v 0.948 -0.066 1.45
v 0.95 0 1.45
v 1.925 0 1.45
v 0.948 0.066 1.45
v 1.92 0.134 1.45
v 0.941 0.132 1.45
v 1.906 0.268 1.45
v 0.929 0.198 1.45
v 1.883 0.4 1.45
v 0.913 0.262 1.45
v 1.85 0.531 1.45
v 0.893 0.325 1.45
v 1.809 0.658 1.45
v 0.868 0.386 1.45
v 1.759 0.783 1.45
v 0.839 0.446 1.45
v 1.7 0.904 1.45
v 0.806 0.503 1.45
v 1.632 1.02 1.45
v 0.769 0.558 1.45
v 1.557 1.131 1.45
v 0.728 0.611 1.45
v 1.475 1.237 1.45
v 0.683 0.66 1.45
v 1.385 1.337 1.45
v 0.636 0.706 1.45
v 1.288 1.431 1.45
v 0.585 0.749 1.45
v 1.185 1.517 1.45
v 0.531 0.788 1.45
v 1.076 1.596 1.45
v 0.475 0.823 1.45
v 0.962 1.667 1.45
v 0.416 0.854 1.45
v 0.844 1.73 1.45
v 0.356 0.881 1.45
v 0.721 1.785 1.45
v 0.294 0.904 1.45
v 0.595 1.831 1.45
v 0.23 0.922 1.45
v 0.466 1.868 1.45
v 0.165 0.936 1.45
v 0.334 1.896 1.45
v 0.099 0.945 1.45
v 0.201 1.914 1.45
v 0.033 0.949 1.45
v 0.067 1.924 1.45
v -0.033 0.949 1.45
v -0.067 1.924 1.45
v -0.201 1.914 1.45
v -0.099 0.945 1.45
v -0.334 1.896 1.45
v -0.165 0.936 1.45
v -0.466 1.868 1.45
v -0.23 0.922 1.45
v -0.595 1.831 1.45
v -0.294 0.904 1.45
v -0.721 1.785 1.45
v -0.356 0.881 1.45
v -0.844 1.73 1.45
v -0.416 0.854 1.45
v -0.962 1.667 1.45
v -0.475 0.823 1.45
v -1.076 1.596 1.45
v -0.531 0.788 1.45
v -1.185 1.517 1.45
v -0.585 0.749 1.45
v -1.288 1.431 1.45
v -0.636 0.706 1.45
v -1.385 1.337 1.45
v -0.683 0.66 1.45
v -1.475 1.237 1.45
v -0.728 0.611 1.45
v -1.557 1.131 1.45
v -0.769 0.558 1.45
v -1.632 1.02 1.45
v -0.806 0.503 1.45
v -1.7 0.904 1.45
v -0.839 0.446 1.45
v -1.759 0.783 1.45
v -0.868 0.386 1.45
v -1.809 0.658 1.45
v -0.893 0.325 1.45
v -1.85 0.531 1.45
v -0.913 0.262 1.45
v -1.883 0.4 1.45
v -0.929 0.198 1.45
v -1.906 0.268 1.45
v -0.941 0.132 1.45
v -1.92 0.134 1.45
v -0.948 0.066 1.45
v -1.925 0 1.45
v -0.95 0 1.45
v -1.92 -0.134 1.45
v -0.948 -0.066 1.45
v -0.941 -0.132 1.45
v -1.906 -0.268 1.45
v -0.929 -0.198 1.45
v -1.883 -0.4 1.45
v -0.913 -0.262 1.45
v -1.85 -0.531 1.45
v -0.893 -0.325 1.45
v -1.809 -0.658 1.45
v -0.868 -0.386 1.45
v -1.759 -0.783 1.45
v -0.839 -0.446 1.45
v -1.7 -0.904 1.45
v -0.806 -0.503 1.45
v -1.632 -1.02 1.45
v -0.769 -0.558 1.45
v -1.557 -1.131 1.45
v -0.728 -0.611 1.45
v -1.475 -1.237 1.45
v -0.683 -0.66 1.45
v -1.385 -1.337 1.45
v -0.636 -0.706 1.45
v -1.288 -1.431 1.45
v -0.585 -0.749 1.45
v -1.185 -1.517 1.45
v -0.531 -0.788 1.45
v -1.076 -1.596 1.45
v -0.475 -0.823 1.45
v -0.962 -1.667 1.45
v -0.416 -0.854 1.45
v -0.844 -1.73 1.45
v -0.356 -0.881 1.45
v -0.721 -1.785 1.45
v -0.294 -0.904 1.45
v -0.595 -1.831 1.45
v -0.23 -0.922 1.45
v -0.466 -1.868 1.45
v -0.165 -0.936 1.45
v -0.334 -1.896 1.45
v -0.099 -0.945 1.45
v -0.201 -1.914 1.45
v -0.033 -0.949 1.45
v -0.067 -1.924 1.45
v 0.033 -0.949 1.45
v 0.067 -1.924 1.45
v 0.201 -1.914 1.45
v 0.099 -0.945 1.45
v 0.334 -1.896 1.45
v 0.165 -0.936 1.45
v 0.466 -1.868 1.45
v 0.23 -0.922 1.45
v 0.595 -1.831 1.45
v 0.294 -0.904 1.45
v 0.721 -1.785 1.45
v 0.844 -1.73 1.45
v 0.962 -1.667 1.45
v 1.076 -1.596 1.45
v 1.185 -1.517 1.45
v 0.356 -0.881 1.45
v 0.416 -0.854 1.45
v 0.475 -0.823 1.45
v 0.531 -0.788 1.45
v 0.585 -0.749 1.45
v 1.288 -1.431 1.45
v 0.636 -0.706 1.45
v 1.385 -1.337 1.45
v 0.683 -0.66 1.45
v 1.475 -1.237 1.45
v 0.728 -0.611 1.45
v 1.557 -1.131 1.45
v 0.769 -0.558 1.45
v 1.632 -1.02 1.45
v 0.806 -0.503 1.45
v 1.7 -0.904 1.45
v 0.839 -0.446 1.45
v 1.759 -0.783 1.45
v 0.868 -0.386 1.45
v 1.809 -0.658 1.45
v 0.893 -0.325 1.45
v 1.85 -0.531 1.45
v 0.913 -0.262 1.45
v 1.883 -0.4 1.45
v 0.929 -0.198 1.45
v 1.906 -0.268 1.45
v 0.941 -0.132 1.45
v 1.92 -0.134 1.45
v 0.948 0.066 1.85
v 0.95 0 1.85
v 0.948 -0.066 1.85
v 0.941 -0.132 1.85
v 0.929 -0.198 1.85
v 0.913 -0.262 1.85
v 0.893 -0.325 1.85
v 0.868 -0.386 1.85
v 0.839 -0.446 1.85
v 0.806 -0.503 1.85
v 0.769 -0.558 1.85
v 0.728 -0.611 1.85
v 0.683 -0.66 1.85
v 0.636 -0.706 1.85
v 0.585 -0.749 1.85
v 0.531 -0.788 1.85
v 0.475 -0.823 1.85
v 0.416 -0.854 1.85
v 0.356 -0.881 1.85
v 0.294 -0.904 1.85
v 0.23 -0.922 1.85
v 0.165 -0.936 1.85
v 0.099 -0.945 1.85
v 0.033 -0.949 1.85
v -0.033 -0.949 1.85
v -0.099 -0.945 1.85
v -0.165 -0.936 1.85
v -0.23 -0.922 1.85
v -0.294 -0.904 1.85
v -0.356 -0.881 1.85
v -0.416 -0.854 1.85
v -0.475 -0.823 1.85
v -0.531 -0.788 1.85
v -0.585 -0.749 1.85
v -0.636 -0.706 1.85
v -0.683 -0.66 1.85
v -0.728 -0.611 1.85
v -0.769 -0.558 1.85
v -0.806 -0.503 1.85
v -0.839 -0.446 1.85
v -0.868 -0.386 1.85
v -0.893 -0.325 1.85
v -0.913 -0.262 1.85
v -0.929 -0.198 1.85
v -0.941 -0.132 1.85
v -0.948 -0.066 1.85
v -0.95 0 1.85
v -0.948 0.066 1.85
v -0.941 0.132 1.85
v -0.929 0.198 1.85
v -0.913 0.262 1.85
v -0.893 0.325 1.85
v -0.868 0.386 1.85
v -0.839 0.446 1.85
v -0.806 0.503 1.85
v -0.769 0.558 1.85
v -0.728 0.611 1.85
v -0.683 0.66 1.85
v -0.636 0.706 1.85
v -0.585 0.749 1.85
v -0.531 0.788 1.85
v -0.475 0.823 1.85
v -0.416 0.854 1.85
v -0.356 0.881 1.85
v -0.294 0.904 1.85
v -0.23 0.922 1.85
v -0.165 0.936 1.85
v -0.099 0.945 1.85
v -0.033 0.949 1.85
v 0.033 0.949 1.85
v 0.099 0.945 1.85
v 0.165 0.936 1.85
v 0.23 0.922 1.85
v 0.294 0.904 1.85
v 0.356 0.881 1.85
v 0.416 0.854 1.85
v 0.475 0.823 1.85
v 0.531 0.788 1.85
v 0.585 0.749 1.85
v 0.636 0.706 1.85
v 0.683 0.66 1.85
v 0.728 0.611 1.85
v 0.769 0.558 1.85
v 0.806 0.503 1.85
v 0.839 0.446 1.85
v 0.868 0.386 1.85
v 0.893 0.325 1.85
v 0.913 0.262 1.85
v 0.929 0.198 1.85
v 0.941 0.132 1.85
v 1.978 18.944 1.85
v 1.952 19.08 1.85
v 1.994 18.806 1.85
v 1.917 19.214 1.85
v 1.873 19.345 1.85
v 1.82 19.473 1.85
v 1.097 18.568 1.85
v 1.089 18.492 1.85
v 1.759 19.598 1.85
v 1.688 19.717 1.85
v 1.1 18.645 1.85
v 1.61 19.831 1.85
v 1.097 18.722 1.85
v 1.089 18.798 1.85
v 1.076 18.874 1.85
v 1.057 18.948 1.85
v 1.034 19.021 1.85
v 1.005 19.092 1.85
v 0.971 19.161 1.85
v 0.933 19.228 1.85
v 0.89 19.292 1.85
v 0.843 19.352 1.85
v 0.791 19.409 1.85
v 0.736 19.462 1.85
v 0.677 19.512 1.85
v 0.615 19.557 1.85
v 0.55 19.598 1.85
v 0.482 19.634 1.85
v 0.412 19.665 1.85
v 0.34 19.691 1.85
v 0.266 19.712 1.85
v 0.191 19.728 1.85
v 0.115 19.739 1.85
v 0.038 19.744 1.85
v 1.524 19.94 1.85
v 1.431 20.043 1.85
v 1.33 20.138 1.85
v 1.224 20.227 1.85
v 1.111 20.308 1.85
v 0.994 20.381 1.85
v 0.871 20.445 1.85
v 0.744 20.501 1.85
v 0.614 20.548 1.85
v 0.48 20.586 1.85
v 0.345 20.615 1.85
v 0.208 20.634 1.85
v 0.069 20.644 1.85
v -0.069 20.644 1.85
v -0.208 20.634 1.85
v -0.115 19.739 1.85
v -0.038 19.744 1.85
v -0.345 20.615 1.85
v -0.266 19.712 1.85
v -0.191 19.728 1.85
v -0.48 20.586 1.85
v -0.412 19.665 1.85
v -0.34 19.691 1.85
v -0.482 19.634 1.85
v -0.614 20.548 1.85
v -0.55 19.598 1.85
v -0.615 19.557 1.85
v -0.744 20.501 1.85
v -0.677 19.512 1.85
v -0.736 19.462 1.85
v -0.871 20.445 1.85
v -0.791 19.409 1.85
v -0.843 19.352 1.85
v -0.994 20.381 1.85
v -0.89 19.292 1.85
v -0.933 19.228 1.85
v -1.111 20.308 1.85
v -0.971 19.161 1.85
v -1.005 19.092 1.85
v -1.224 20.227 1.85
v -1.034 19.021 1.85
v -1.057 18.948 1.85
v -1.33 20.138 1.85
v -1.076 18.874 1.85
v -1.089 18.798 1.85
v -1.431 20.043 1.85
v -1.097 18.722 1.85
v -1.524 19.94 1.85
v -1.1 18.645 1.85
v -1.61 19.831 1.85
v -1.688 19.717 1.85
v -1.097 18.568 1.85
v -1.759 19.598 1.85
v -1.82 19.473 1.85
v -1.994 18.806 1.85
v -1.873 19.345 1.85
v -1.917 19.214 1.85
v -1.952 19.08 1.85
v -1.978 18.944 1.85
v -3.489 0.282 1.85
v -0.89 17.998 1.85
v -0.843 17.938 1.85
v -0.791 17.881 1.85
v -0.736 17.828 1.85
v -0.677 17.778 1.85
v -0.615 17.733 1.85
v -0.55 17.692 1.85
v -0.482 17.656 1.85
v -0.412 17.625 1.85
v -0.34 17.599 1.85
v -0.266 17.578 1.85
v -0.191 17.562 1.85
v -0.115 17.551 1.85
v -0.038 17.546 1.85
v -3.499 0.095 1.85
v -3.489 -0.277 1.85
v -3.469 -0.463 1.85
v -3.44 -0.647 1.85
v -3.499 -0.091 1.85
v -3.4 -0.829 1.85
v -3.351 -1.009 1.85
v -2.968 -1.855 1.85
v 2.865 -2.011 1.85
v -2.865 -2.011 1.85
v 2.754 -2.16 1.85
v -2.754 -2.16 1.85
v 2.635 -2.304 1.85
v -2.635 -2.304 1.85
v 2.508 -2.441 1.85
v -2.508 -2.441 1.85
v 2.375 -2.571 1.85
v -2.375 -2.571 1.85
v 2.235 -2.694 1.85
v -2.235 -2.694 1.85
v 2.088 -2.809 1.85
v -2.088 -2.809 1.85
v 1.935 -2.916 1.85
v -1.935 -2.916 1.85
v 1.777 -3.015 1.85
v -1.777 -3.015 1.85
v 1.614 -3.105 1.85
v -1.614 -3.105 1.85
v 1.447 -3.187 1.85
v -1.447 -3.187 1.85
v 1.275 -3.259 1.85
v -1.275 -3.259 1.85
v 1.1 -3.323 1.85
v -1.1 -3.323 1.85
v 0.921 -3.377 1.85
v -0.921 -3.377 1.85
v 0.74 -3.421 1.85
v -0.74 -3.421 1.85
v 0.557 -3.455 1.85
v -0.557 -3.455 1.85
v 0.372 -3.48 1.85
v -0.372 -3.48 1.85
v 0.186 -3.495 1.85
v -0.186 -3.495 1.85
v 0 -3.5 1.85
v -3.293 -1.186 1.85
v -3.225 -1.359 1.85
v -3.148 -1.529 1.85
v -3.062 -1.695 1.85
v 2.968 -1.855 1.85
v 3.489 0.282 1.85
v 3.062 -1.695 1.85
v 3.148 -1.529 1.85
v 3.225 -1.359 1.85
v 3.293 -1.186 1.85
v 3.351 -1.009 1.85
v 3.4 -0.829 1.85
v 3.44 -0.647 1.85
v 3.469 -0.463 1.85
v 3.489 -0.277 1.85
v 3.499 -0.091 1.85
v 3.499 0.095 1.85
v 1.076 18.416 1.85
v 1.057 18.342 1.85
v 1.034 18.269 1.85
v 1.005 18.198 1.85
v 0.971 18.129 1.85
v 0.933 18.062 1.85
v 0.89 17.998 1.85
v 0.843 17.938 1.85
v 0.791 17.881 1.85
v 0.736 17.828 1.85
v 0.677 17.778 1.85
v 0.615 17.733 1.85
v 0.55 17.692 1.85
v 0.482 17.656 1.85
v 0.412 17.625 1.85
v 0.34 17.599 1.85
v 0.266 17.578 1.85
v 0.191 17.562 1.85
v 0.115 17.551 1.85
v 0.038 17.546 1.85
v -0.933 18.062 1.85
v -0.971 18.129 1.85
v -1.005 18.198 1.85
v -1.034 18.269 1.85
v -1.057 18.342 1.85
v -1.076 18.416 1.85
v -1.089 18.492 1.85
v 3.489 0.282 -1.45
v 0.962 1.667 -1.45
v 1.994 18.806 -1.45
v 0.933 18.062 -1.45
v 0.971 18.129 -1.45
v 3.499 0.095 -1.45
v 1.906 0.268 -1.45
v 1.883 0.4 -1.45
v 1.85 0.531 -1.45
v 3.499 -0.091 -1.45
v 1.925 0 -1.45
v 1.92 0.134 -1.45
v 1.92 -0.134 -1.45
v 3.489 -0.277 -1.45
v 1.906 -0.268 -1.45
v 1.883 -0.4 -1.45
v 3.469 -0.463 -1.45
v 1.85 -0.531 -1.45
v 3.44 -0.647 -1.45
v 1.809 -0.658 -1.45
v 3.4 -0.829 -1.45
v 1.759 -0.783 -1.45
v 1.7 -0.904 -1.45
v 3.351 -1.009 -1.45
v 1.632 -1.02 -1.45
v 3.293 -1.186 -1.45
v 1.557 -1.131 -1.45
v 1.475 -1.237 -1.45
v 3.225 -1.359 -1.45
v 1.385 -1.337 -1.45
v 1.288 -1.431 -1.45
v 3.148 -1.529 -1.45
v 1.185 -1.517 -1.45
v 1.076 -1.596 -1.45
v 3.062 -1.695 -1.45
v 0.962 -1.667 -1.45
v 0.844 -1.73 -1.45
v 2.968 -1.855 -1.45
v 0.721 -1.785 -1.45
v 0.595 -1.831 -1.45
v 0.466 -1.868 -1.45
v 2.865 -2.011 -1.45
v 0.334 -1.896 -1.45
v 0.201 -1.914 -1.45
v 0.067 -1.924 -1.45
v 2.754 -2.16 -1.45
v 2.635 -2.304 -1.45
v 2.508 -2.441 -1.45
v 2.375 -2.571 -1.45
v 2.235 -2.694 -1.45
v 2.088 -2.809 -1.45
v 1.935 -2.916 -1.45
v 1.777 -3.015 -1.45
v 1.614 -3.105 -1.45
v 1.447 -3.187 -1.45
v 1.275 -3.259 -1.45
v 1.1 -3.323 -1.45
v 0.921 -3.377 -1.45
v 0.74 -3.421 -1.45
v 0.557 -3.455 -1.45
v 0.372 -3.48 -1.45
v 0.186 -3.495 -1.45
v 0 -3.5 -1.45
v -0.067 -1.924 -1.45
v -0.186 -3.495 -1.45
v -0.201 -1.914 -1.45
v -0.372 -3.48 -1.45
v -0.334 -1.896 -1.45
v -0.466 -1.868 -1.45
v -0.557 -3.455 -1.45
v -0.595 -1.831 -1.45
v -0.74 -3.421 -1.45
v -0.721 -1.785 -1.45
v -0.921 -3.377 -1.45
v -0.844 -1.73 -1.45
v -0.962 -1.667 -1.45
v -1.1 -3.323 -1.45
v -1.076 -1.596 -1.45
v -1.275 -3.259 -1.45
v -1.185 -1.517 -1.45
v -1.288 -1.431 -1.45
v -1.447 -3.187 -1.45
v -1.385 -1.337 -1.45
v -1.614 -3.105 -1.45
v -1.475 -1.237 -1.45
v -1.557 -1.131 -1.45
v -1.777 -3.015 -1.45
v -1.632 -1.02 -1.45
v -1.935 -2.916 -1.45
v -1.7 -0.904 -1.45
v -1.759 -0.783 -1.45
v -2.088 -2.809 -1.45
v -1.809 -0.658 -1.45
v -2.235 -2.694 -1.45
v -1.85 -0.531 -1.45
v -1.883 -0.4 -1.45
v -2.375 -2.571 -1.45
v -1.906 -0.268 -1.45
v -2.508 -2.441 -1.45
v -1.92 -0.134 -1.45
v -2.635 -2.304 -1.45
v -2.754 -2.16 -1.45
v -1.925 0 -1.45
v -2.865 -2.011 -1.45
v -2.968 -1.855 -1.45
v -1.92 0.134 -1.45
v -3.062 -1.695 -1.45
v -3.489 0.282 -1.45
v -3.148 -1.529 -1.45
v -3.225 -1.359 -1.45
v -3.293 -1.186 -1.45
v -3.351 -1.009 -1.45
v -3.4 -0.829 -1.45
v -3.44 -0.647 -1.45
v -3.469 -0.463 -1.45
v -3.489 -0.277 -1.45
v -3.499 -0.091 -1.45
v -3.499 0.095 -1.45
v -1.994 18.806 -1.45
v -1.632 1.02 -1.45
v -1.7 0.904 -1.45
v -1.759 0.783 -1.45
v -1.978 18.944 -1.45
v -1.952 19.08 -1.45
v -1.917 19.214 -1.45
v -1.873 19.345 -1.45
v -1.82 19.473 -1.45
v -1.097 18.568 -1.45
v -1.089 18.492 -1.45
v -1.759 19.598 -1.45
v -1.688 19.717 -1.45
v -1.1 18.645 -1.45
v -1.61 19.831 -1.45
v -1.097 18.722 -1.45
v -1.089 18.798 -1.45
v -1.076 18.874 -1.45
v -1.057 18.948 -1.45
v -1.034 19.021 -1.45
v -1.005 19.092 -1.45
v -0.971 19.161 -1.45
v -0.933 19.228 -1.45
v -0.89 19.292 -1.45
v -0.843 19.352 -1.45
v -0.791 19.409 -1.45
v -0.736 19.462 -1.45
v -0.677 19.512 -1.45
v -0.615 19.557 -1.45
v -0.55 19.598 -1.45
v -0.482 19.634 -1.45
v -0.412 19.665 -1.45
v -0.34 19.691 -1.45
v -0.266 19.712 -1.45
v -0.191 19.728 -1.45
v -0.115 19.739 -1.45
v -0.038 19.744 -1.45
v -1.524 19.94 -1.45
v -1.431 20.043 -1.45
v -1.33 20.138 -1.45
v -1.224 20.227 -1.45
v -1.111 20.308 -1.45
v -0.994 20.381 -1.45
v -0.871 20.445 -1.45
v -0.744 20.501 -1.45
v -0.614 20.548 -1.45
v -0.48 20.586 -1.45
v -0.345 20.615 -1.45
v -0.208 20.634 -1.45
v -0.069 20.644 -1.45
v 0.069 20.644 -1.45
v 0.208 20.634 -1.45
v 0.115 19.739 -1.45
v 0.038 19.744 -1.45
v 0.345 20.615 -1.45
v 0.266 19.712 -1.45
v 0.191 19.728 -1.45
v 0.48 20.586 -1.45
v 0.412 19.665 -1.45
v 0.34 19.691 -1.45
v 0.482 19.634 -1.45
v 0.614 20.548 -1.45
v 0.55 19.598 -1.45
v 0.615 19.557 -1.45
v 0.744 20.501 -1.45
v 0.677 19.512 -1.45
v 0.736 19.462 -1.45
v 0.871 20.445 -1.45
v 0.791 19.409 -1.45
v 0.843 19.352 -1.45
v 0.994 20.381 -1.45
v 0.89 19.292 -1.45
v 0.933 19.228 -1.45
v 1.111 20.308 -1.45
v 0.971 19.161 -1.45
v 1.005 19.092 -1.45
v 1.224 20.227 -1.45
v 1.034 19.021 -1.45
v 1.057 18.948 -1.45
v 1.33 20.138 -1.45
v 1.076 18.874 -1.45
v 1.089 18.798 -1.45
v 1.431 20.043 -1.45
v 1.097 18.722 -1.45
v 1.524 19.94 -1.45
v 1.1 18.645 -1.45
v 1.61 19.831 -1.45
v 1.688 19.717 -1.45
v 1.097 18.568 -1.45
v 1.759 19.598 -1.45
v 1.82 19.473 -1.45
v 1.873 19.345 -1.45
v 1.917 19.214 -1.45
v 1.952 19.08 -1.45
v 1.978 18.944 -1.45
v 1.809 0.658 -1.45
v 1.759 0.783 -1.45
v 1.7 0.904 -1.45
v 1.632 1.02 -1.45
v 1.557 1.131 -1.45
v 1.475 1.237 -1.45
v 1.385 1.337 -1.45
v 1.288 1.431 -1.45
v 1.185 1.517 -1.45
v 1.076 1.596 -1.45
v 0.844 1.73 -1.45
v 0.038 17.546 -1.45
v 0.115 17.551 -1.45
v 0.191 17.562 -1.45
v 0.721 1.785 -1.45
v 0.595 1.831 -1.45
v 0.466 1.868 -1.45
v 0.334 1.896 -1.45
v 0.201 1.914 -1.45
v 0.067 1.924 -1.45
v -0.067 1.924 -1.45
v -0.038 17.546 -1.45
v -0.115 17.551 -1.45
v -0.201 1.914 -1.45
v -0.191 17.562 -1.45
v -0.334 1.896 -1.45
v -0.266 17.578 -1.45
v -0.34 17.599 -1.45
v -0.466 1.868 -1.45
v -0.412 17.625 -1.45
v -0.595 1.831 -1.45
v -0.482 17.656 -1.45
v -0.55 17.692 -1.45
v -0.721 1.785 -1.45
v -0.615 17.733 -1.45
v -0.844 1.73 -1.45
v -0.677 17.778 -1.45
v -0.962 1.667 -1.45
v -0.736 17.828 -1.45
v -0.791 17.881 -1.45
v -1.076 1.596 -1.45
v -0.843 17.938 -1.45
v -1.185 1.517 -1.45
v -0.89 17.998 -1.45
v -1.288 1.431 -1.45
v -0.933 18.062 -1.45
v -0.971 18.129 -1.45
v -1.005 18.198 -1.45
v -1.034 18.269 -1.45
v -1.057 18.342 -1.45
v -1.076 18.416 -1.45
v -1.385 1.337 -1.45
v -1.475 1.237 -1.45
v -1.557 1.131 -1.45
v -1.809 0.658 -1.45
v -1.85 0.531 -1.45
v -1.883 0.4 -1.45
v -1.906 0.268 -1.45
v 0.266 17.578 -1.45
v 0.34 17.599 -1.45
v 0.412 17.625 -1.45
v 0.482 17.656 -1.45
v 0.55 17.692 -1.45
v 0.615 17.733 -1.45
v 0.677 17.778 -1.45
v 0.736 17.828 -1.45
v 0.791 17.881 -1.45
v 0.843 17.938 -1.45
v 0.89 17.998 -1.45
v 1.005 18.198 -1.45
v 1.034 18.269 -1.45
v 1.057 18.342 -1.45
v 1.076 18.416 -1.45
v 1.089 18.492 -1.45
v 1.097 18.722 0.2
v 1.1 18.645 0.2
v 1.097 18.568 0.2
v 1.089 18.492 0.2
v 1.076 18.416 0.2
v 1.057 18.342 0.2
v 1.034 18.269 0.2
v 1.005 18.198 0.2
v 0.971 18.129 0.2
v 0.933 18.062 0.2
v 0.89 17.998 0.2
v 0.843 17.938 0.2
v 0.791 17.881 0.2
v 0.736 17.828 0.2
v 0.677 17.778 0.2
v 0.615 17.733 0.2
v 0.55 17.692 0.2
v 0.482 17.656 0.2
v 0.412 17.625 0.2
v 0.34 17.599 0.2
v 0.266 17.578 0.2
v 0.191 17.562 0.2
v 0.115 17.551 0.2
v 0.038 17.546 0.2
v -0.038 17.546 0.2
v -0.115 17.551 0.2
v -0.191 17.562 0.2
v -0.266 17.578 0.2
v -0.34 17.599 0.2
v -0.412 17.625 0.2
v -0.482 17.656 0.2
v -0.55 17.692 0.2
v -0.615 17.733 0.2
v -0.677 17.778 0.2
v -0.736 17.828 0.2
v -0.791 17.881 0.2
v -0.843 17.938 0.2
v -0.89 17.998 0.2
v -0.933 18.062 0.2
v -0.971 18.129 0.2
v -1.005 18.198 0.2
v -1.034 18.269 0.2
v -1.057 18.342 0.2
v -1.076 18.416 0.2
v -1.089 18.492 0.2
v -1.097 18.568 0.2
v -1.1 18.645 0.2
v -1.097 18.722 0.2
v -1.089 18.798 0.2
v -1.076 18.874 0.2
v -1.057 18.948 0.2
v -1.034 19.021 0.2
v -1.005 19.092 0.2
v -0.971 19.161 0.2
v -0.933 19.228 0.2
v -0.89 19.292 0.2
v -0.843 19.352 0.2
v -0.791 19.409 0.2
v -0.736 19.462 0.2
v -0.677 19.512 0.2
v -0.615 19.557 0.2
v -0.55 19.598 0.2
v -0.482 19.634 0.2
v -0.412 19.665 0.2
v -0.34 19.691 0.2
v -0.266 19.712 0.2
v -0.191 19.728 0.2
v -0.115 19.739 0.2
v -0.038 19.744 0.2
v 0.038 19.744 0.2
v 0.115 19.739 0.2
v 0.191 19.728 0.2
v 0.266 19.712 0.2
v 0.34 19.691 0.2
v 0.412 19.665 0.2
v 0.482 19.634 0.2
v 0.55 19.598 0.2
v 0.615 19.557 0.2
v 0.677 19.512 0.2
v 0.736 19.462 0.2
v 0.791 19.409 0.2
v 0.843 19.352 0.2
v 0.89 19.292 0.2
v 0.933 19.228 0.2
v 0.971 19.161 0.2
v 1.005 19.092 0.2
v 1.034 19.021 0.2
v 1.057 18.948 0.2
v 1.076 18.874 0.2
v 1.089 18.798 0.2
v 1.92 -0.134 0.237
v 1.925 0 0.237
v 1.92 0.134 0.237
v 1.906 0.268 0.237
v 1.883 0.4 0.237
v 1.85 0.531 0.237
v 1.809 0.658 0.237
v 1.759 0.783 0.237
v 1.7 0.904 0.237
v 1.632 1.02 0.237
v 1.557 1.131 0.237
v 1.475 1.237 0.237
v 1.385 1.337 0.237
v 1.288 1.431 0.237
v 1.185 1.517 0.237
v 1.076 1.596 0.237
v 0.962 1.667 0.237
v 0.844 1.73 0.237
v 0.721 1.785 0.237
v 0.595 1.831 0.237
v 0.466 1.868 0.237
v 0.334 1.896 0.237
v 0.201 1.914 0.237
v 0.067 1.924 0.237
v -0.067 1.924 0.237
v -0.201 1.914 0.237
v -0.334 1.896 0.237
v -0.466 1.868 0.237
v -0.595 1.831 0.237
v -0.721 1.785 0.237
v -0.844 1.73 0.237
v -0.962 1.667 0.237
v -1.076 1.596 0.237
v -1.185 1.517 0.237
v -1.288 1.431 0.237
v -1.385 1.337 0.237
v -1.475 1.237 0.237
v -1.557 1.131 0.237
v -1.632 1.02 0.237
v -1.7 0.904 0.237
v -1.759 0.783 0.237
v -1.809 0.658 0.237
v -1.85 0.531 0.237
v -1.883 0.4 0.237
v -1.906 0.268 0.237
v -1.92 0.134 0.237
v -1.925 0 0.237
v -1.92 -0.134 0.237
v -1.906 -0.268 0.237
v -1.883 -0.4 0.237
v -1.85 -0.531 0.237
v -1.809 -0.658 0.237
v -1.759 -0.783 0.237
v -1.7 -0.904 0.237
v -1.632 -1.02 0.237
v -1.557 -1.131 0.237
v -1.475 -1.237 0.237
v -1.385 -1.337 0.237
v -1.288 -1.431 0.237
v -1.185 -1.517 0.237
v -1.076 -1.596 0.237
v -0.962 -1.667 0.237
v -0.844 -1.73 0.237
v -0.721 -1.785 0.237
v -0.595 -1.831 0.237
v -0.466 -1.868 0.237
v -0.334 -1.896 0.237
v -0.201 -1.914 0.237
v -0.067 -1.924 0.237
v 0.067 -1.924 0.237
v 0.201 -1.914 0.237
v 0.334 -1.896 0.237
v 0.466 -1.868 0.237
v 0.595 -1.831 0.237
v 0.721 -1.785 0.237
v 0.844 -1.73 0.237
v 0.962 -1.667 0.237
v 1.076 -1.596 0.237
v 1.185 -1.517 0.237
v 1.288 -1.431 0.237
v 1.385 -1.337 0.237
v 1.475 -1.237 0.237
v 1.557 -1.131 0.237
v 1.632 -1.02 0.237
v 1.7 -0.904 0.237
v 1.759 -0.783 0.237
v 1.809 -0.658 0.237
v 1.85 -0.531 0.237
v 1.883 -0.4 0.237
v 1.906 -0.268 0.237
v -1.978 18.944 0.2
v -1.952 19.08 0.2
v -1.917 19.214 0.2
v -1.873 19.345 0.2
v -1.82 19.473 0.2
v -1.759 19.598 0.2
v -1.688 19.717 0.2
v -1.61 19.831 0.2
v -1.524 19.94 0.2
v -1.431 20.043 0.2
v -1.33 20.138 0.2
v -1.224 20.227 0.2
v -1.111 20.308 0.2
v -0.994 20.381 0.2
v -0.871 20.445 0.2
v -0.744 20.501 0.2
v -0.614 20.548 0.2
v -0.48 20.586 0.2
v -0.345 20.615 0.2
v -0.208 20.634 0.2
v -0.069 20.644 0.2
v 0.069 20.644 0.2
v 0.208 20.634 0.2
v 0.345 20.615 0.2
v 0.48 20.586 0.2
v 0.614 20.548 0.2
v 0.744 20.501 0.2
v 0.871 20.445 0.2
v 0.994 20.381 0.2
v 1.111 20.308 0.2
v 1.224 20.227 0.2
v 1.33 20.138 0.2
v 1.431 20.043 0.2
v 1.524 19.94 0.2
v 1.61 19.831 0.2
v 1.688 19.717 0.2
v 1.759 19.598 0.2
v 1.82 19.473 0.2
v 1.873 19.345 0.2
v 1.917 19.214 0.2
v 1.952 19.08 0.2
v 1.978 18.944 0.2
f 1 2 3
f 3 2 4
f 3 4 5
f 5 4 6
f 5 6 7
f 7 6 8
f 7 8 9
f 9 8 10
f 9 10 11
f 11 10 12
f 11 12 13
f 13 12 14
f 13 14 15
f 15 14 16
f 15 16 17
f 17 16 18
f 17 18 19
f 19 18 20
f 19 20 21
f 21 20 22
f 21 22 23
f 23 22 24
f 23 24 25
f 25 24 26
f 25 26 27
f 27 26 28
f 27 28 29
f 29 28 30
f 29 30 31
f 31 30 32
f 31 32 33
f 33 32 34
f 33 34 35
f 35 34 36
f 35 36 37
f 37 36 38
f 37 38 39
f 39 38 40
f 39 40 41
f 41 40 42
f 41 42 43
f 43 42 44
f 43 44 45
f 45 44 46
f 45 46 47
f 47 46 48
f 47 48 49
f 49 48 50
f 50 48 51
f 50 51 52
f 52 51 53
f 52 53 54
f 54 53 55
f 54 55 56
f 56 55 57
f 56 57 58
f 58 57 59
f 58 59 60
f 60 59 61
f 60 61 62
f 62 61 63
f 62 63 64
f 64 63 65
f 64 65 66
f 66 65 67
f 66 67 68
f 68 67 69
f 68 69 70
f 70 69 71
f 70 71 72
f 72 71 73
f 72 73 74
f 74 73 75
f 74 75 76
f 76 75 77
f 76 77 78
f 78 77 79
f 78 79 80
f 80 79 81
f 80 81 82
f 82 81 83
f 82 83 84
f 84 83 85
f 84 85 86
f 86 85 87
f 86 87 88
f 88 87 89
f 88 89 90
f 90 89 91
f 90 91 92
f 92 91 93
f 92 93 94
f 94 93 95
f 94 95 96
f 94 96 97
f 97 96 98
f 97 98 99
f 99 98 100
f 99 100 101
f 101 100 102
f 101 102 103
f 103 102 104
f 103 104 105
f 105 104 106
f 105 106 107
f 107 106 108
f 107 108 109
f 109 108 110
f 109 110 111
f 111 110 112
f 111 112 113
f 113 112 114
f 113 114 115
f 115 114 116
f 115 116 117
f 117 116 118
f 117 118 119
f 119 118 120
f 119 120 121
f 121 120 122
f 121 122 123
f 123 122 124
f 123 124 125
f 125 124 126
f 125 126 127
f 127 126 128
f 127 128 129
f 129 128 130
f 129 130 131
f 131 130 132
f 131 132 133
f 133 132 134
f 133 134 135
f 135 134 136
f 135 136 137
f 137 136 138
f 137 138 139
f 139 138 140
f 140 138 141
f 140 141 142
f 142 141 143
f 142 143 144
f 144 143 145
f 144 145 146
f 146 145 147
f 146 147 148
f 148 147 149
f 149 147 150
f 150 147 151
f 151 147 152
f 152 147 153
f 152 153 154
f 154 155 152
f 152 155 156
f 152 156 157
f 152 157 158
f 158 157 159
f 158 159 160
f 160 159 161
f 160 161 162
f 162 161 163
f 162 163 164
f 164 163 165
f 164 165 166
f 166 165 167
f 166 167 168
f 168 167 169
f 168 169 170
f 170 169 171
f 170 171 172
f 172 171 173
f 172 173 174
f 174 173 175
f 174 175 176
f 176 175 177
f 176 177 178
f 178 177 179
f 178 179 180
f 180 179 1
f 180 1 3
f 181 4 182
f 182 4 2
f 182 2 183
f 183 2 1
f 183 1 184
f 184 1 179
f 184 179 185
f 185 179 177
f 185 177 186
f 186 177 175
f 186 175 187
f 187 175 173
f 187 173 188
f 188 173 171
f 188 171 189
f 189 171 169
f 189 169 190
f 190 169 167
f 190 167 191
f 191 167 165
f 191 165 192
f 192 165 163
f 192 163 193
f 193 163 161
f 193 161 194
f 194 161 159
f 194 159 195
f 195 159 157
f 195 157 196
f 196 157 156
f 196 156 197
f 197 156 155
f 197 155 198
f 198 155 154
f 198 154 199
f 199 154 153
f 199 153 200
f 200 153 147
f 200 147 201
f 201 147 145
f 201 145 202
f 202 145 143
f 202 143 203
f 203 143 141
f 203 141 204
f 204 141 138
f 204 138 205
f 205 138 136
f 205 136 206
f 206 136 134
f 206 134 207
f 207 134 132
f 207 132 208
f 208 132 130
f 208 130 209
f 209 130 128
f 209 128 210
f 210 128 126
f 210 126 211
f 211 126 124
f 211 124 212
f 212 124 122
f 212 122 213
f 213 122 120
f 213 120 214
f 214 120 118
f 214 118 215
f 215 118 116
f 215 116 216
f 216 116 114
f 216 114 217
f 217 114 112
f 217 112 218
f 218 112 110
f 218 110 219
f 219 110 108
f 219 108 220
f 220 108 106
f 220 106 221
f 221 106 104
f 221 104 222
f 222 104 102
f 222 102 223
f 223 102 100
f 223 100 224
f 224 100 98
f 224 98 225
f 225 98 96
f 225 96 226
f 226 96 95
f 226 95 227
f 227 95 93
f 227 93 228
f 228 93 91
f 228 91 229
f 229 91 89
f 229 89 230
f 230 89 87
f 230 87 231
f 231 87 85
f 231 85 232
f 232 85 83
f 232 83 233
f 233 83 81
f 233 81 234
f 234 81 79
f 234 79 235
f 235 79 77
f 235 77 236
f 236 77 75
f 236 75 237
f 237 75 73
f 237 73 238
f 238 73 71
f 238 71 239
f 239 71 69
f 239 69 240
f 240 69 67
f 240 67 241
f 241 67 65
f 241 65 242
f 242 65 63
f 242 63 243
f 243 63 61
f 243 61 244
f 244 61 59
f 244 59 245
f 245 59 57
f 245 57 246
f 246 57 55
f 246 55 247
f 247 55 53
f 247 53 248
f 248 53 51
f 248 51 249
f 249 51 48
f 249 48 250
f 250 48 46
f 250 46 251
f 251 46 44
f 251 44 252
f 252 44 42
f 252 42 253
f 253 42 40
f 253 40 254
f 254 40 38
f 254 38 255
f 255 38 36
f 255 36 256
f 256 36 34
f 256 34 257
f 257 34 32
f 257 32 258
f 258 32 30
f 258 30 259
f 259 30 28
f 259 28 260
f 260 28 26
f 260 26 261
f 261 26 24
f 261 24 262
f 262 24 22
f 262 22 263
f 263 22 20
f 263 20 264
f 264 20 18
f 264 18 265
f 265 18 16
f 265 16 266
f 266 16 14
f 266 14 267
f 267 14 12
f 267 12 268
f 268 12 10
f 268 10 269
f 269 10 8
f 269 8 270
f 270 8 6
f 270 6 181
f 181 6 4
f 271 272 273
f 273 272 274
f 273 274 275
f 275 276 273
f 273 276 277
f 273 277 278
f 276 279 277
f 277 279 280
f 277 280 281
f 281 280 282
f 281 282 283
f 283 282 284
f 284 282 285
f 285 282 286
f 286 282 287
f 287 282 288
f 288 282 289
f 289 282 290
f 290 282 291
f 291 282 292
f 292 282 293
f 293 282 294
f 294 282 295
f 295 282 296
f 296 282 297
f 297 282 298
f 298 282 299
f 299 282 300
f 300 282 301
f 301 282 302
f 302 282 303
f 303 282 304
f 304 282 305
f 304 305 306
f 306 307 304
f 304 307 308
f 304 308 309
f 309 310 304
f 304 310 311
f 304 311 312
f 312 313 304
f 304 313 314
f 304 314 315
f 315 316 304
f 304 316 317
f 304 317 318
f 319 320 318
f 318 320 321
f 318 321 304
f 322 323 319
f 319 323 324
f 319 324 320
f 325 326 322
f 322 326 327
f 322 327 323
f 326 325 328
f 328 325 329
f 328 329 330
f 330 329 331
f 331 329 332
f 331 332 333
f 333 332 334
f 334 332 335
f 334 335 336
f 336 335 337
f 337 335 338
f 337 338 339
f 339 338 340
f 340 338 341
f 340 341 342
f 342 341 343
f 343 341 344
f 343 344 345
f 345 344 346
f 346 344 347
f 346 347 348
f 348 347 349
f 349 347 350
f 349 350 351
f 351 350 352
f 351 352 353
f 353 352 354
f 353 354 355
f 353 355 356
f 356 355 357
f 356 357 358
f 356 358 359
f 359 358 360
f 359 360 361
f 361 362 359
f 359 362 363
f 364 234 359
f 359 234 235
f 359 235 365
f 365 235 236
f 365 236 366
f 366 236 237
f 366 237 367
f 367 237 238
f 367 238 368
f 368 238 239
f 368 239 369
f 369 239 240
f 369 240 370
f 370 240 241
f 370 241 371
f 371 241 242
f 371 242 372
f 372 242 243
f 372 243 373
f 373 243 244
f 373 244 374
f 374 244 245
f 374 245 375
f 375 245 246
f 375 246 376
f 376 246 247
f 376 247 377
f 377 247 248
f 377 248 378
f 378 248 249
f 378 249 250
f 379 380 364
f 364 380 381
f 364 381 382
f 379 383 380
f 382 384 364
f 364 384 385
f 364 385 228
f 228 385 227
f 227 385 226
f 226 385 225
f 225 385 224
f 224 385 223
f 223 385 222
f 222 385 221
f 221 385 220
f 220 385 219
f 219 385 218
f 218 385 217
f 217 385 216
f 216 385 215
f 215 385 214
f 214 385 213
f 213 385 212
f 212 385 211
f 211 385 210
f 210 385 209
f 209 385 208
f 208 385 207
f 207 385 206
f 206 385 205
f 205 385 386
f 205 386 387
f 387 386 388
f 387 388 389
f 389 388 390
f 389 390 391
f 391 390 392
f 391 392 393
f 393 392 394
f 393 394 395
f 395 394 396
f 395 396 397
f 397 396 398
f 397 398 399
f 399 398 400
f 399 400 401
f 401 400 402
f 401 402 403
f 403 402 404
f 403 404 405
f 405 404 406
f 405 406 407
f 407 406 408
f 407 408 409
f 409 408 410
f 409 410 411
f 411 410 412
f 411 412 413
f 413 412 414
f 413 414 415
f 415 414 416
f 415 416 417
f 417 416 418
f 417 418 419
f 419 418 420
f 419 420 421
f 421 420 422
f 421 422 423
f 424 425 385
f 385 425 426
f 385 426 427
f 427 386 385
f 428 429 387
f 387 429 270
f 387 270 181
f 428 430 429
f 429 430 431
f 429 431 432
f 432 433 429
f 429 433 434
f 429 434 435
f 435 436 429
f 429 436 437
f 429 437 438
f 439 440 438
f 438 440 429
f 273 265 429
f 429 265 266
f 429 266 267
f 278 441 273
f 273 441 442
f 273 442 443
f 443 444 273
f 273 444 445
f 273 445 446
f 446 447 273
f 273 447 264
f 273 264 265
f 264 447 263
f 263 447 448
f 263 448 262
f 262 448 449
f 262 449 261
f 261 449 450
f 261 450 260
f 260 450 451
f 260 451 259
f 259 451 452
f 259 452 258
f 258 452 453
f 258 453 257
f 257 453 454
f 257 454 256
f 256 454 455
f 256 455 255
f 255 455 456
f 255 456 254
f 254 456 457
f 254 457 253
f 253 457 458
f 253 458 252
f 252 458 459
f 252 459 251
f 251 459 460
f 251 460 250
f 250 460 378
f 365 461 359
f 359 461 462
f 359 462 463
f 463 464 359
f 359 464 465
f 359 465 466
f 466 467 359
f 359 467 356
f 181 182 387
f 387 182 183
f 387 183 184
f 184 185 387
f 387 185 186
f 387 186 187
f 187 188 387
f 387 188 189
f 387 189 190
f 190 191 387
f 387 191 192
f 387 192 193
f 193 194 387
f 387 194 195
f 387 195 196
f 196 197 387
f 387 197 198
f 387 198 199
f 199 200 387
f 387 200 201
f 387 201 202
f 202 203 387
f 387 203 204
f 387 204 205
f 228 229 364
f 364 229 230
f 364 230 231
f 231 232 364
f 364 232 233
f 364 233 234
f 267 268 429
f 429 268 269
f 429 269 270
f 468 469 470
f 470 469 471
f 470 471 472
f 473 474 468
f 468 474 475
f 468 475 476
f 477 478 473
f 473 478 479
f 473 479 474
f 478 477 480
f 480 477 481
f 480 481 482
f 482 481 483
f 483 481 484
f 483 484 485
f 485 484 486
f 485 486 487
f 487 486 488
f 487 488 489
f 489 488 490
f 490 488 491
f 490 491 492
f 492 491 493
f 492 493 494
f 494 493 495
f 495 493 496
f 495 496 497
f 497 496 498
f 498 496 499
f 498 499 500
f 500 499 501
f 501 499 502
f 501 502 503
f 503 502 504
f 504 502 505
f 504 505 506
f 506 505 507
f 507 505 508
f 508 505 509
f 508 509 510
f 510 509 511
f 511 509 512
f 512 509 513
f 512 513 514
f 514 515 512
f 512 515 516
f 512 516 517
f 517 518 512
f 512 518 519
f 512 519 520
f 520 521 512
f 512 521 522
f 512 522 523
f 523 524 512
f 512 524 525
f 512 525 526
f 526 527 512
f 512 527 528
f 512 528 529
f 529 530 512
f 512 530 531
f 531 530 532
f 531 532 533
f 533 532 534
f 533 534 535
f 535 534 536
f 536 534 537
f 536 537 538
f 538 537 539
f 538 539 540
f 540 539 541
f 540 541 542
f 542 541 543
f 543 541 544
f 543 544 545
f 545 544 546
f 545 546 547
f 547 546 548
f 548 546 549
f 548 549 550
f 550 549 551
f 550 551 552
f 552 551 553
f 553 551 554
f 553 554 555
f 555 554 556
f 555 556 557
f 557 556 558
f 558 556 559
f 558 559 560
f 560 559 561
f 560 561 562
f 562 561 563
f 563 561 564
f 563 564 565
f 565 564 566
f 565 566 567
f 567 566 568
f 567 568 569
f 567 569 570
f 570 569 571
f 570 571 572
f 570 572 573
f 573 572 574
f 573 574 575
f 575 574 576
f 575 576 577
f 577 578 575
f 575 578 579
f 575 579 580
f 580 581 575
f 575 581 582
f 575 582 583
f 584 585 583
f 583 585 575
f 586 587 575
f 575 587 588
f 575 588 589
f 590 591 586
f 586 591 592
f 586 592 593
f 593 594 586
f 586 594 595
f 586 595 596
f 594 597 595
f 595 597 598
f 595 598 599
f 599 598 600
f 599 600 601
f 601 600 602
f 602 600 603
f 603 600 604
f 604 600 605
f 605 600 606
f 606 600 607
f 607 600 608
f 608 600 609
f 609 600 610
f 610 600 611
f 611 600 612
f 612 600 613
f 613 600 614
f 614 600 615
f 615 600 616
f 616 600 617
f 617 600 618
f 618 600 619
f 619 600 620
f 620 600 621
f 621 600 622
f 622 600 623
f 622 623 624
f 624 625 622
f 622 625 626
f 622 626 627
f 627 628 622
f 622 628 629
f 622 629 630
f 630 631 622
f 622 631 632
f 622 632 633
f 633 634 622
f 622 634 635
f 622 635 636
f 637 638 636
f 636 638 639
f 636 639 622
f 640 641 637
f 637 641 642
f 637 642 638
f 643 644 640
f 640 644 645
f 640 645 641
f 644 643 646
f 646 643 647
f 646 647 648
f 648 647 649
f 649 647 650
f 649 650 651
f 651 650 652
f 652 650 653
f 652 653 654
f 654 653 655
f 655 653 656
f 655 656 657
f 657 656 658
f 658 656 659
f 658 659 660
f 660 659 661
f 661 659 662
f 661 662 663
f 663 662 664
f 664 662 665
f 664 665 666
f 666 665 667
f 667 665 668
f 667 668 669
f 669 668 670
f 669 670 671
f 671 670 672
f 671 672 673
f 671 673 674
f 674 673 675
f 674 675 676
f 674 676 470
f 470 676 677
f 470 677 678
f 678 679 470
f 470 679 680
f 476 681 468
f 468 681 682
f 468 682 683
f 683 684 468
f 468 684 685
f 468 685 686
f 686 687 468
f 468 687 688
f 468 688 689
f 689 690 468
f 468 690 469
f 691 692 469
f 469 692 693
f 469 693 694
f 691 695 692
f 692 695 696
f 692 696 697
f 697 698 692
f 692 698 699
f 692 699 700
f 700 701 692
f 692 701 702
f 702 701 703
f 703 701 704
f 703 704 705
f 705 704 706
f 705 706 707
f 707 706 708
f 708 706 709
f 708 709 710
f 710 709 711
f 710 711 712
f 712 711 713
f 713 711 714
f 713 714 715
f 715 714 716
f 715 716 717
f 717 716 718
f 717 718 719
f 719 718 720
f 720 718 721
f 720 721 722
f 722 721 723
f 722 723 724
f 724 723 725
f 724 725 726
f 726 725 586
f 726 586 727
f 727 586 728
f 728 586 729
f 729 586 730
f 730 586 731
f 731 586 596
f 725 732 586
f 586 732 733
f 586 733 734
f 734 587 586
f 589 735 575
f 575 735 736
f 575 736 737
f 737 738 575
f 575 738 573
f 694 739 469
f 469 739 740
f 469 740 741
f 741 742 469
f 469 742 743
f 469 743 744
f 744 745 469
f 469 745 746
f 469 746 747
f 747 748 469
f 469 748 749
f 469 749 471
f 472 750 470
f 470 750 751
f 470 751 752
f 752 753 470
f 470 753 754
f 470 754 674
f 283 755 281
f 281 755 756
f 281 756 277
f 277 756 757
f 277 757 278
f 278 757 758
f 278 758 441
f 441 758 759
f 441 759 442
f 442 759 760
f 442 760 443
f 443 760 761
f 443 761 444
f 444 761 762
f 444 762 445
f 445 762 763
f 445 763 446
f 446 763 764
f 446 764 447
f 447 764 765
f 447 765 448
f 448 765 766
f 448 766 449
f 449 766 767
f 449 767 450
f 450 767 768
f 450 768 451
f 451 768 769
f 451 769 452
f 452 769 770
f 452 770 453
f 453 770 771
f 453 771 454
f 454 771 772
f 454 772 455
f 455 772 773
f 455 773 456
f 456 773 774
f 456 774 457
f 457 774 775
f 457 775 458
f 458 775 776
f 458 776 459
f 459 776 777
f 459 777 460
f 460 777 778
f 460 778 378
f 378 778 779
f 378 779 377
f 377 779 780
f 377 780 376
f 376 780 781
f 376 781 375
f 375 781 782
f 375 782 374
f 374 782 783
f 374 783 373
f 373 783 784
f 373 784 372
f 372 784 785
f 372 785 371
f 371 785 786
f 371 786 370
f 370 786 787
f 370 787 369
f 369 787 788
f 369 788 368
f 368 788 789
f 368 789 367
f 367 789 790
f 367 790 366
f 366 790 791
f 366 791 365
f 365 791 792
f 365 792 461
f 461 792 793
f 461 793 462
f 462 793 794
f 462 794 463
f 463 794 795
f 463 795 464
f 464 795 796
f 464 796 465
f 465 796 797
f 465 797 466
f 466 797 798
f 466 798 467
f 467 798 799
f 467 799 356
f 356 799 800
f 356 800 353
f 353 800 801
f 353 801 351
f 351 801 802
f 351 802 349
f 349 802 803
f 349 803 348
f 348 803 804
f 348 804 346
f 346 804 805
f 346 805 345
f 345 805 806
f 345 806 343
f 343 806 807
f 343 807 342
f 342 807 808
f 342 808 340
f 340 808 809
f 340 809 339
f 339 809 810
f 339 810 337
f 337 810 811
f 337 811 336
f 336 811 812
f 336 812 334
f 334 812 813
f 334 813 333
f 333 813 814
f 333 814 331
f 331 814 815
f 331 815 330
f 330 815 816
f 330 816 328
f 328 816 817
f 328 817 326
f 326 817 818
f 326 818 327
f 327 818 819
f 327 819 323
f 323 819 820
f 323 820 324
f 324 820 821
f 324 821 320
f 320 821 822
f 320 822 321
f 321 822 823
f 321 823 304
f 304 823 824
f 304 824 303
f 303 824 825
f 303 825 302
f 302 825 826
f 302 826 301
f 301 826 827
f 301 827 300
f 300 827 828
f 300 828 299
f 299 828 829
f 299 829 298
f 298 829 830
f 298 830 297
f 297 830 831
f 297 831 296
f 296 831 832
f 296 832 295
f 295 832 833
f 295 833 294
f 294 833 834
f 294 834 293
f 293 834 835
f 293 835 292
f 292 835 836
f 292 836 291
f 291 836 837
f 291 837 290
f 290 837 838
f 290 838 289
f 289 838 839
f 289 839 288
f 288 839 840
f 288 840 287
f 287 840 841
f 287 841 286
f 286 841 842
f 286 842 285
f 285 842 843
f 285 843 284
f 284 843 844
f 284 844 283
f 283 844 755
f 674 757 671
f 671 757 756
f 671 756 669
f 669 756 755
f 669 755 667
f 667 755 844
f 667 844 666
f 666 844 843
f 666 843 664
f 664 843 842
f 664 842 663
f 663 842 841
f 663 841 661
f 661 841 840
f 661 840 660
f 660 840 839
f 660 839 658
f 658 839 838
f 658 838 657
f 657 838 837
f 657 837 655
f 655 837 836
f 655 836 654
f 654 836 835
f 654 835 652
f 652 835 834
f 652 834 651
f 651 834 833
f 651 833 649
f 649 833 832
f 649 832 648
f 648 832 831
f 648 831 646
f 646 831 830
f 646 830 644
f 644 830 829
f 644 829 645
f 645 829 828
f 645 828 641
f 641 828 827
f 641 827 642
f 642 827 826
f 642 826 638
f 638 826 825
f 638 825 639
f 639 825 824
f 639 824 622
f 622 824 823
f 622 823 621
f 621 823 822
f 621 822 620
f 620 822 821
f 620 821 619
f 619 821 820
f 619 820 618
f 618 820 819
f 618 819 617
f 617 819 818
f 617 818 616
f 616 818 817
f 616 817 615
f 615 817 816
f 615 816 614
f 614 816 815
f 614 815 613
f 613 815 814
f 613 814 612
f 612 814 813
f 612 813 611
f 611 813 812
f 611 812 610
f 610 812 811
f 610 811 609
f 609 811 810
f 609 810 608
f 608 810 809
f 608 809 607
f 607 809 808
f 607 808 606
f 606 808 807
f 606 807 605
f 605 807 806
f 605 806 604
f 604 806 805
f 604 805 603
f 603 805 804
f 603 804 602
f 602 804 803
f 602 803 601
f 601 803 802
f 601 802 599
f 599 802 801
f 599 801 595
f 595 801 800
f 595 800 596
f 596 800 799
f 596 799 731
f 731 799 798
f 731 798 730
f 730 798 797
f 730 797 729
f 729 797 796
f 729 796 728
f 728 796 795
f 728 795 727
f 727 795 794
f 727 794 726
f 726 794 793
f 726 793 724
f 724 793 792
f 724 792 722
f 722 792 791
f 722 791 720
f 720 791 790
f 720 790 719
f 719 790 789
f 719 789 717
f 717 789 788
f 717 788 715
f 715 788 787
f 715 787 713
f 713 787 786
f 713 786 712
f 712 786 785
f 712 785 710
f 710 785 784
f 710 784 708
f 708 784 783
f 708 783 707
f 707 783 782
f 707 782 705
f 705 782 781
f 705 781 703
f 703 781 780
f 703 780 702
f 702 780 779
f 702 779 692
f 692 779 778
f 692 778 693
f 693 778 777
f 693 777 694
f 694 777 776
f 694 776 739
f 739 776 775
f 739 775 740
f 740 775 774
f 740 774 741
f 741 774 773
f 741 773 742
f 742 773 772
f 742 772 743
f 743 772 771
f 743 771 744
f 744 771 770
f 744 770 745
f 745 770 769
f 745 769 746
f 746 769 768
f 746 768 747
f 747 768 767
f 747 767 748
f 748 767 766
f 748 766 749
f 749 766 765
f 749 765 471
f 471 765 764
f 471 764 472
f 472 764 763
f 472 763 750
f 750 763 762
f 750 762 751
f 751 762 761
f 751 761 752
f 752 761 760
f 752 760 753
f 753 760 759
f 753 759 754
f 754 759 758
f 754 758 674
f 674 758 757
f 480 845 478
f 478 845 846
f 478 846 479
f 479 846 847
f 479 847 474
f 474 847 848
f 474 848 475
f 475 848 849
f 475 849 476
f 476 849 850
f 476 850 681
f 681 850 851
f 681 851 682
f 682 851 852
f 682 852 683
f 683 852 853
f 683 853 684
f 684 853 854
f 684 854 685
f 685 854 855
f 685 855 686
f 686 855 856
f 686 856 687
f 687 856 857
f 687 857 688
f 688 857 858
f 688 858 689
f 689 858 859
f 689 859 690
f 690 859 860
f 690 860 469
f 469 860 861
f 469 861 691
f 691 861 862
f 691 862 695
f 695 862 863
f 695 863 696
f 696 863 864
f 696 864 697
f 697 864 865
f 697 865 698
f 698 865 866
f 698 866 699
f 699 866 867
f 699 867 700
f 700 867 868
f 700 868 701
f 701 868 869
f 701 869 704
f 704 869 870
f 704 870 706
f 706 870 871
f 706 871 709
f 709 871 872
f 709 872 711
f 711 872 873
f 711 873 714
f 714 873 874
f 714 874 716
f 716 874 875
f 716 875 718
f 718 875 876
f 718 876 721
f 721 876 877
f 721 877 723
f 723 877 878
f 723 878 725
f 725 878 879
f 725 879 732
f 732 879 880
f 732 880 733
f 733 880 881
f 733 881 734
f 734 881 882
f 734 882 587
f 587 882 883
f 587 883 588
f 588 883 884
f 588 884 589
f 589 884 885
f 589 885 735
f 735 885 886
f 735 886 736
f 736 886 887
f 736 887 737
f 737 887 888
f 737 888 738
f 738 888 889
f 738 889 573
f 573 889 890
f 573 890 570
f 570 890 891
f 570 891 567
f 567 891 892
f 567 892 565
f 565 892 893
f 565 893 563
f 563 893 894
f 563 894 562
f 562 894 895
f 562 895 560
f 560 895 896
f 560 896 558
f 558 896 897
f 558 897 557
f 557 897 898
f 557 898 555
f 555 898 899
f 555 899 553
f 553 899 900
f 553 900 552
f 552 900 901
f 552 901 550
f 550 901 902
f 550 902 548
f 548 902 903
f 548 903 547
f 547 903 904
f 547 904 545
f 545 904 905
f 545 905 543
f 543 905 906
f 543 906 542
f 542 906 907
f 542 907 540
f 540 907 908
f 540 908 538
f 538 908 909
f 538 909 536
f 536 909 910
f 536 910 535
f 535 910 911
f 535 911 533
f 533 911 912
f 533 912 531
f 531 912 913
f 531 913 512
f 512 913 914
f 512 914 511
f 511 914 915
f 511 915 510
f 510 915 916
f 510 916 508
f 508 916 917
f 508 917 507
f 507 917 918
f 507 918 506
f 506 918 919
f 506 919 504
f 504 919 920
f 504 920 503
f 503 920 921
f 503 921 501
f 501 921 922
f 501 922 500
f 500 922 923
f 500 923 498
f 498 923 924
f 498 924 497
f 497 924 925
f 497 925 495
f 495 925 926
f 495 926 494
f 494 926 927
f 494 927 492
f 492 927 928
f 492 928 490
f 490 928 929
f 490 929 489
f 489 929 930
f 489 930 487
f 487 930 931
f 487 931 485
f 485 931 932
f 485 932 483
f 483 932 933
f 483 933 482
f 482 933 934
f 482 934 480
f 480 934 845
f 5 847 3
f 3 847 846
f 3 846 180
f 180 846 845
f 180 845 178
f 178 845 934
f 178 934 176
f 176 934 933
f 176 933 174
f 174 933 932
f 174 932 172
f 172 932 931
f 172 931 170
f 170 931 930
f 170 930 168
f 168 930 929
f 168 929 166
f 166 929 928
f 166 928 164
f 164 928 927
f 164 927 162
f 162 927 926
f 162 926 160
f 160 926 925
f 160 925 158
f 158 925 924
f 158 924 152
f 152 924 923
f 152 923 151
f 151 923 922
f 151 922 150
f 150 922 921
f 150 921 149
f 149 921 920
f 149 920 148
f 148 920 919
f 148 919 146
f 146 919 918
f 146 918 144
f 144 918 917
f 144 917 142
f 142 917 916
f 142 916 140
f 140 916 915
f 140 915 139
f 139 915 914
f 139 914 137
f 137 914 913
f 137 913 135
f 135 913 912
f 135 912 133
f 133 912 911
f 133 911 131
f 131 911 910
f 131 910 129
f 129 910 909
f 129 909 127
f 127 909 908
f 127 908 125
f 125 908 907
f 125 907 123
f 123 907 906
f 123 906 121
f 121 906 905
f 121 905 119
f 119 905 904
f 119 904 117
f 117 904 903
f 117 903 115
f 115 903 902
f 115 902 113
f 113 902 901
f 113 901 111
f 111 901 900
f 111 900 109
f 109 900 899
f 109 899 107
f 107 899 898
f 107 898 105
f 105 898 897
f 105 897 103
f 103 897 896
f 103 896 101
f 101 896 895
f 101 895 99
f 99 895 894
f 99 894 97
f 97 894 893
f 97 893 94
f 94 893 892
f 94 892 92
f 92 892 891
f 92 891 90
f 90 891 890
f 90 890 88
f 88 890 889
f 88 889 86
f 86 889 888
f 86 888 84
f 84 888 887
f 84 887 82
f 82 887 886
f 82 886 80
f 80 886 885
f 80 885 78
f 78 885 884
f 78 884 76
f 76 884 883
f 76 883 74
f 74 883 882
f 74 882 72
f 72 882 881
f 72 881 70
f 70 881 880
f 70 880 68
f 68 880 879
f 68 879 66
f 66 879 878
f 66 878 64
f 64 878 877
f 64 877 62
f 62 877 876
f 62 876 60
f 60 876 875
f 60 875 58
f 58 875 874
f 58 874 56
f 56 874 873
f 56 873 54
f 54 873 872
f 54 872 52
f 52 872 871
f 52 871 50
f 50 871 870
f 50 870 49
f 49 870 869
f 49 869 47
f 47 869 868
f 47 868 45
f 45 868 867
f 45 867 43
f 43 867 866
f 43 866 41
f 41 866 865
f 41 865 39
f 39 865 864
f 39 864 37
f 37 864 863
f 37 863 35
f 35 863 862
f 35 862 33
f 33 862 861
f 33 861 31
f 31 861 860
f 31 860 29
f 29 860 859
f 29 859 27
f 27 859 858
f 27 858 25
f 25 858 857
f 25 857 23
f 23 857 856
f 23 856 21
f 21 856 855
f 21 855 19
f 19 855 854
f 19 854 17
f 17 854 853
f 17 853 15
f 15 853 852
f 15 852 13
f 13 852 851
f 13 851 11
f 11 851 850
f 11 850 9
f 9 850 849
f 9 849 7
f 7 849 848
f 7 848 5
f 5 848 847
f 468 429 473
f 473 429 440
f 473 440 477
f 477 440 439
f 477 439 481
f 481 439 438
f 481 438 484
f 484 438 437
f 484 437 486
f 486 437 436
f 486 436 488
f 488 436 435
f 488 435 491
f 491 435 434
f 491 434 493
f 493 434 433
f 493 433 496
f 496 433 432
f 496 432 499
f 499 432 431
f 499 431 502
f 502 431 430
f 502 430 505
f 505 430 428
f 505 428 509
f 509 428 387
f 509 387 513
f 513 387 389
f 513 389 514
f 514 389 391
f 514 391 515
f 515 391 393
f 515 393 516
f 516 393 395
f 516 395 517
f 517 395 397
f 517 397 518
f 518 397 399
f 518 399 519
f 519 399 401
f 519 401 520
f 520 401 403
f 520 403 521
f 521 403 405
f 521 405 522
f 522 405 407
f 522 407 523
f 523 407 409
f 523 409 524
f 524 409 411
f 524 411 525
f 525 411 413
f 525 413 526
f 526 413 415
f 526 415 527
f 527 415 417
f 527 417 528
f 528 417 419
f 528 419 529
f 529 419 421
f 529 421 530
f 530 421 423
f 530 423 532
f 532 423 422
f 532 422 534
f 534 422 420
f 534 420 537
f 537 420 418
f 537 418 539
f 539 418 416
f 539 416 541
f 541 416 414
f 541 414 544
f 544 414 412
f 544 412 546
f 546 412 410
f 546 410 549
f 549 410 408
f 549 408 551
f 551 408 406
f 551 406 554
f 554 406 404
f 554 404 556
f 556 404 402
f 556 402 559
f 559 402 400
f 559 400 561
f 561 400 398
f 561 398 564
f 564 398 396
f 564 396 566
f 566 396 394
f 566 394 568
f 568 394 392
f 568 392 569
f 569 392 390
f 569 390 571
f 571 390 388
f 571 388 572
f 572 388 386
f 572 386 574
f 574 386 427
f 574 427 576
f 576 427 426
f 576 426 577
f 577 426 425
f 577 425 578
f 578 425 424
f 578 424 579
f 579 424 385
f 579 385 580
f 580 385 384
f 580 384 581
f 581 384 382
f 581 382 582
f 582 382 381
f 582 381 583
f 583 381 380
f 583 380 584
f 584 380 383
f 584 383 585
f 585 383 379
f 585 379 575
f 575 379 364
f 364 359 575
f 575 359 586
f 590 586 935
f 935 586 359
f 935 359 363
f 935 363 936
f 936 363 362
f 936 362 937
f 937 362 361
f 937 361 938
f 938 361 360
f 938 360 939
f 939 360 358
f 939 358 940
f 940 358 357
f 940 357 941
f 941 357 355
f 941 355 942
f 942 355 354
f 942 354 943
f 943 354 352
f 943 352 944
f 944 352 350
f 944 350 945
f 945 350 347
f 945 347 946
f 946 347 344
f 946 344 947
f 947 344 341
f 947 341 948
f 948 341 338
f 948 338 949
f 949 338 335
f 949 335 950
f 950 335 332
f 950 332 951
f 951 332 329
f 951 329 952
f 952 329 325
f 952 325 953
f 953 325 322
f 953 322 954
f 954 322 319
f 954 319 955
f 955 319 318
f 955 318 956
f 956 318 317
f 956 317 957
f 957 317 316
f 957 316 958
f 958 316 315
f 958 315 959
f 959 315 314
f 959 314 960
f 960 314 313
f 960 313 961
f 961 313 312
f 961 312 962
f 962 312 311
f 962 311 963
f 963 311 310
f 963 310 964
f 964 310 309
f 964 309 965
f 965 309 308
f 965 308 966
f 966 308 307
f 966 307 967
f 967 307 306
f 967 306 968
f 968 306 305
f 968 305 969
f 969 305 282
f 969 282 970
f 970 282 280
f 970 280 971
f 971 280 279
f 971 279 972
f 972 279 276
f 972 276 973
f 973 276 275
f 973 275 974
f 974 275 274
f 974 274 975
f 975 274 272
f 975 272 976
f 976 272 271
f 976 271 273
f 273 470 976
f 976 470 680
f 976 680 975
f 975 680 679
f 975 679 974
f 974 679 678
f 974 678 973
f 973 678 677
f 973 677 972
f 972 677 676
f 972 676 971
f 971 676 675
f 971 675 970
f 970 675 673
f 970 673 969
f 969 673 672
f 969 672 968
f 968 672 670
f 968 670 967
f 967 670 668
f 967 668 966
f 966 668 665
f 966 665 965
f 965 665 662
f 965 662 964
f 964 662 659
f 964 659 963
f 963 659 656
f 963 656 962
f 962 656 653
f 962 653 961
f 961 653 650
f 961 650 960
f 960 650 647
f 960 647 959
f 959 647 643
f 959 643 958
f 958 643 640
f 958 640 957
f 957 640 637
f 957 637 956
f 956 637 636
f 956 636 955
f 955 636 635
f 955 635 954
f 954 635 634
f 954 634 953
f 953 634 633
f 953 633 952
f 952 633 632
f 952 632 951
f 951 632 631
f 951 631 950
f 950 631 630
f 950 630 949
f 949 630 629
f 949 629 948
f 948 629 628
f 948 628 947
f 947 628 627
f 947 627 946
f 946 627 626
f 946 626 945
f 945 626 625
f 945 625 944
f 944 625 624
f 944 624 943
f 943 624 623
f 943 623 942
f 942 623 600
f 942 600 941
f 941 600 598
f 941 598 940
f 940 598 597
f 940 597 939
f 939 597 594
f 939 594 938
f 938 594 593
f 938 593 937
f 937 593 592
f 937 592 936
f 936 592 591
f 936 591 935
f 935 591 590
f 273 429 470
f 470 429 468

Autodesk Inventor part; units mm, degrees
ref_plane "YZ Plane" through (0, 0, 0) normal (1, 0, 0) x (0, 1, 0)
ref_plane "XZ Plane" through (0, 0, 0) normal (0, 1, 0) x (-1, 0, 0)
ref_plane "XY Plane" through (0, 0, 0) normal (0, 0, 1) x (1, 0, 0)
sketch "Эскиз1" plane through (0, 0, 0) normal (0, 0, 1) x (1, 0, 0)
  circle A0 centre (0, 0) radius 1.925 projected
  circle A1 centre (0, 0) radius 1.9
  circle A2 centre (0, 0) radius 3.5
  circle A3 centre (0, 0) radius 18.645 projected
  line L0 (0, 69.6007) -> (0, -10.6967) projected
  circle A4 centre (0, 18.645) radius 1.1
  circle A5 centre (0, 18.645) radius 2
  line L1 (-1.9935, 18.8059) -> (-3.4887, 0.2816)
  line L2 (3.4887, 0.2816) -> (1.9935, 18.8059)
  point P0 (0, 0)
  point P1 (2.0153, 18.5358)
  point P2 (1.9971, 18.5377)
  point P3 (-1.9971, 18.5377)
  point P4 (-2.0153, 18.5358)
  dimension "d0" = 3.8
  dimension "d1" = 7
  dimension "d2" = 2.2
  dimension "d3" = 4
extrude "Выдавливание1" add sketch "Эскиз1" along normal mid plane 2.9 contours A0 L0 A2 | A0 L0 A2 | L0 A5 A3 L2 A2 | A2 L1 A3 A5 L0 | A5 A3 A4 L0 | L0 A4 A3 A5 | A3 A5 L2 | L1 A5 A3 | A5 L0 A4 A3 | A3 A4 L0 A5
sketch "Эскиз2" plane through (0, 0, 1.45) normal (0, 0, 1) x (1, 0, 0)
  line L0 (3.4887, 0.2816) -> (1.9935, 18.8059) projected
  arc A0 (1.9935, 18.8059) -> (-1.9935, 18.8059) centre (0, 18.645) ccw projected
  line L1 (-1.9935, 18.8059) -> (-3.4887, 0.2816) projected
  arc A1 (-3.4887, 0.2816) -> (3.4887, 0.2816) centre (0, 0) ccw projected
  circle A2 centre (0, 0) radius 1.925 projected
  circle A3 centre (0, 18.645) radius 1.1 projected
  circle A4 centre (0, 0) radius 0.95
  point P0 (0, 0)
  dimension "d8" = 1.9
extrude "Выдавливание2" add sketch "Эскиз2" along normal blind 0.4 contours A1 L1 A0 L0 | A2
properties part number "shatun_main"
